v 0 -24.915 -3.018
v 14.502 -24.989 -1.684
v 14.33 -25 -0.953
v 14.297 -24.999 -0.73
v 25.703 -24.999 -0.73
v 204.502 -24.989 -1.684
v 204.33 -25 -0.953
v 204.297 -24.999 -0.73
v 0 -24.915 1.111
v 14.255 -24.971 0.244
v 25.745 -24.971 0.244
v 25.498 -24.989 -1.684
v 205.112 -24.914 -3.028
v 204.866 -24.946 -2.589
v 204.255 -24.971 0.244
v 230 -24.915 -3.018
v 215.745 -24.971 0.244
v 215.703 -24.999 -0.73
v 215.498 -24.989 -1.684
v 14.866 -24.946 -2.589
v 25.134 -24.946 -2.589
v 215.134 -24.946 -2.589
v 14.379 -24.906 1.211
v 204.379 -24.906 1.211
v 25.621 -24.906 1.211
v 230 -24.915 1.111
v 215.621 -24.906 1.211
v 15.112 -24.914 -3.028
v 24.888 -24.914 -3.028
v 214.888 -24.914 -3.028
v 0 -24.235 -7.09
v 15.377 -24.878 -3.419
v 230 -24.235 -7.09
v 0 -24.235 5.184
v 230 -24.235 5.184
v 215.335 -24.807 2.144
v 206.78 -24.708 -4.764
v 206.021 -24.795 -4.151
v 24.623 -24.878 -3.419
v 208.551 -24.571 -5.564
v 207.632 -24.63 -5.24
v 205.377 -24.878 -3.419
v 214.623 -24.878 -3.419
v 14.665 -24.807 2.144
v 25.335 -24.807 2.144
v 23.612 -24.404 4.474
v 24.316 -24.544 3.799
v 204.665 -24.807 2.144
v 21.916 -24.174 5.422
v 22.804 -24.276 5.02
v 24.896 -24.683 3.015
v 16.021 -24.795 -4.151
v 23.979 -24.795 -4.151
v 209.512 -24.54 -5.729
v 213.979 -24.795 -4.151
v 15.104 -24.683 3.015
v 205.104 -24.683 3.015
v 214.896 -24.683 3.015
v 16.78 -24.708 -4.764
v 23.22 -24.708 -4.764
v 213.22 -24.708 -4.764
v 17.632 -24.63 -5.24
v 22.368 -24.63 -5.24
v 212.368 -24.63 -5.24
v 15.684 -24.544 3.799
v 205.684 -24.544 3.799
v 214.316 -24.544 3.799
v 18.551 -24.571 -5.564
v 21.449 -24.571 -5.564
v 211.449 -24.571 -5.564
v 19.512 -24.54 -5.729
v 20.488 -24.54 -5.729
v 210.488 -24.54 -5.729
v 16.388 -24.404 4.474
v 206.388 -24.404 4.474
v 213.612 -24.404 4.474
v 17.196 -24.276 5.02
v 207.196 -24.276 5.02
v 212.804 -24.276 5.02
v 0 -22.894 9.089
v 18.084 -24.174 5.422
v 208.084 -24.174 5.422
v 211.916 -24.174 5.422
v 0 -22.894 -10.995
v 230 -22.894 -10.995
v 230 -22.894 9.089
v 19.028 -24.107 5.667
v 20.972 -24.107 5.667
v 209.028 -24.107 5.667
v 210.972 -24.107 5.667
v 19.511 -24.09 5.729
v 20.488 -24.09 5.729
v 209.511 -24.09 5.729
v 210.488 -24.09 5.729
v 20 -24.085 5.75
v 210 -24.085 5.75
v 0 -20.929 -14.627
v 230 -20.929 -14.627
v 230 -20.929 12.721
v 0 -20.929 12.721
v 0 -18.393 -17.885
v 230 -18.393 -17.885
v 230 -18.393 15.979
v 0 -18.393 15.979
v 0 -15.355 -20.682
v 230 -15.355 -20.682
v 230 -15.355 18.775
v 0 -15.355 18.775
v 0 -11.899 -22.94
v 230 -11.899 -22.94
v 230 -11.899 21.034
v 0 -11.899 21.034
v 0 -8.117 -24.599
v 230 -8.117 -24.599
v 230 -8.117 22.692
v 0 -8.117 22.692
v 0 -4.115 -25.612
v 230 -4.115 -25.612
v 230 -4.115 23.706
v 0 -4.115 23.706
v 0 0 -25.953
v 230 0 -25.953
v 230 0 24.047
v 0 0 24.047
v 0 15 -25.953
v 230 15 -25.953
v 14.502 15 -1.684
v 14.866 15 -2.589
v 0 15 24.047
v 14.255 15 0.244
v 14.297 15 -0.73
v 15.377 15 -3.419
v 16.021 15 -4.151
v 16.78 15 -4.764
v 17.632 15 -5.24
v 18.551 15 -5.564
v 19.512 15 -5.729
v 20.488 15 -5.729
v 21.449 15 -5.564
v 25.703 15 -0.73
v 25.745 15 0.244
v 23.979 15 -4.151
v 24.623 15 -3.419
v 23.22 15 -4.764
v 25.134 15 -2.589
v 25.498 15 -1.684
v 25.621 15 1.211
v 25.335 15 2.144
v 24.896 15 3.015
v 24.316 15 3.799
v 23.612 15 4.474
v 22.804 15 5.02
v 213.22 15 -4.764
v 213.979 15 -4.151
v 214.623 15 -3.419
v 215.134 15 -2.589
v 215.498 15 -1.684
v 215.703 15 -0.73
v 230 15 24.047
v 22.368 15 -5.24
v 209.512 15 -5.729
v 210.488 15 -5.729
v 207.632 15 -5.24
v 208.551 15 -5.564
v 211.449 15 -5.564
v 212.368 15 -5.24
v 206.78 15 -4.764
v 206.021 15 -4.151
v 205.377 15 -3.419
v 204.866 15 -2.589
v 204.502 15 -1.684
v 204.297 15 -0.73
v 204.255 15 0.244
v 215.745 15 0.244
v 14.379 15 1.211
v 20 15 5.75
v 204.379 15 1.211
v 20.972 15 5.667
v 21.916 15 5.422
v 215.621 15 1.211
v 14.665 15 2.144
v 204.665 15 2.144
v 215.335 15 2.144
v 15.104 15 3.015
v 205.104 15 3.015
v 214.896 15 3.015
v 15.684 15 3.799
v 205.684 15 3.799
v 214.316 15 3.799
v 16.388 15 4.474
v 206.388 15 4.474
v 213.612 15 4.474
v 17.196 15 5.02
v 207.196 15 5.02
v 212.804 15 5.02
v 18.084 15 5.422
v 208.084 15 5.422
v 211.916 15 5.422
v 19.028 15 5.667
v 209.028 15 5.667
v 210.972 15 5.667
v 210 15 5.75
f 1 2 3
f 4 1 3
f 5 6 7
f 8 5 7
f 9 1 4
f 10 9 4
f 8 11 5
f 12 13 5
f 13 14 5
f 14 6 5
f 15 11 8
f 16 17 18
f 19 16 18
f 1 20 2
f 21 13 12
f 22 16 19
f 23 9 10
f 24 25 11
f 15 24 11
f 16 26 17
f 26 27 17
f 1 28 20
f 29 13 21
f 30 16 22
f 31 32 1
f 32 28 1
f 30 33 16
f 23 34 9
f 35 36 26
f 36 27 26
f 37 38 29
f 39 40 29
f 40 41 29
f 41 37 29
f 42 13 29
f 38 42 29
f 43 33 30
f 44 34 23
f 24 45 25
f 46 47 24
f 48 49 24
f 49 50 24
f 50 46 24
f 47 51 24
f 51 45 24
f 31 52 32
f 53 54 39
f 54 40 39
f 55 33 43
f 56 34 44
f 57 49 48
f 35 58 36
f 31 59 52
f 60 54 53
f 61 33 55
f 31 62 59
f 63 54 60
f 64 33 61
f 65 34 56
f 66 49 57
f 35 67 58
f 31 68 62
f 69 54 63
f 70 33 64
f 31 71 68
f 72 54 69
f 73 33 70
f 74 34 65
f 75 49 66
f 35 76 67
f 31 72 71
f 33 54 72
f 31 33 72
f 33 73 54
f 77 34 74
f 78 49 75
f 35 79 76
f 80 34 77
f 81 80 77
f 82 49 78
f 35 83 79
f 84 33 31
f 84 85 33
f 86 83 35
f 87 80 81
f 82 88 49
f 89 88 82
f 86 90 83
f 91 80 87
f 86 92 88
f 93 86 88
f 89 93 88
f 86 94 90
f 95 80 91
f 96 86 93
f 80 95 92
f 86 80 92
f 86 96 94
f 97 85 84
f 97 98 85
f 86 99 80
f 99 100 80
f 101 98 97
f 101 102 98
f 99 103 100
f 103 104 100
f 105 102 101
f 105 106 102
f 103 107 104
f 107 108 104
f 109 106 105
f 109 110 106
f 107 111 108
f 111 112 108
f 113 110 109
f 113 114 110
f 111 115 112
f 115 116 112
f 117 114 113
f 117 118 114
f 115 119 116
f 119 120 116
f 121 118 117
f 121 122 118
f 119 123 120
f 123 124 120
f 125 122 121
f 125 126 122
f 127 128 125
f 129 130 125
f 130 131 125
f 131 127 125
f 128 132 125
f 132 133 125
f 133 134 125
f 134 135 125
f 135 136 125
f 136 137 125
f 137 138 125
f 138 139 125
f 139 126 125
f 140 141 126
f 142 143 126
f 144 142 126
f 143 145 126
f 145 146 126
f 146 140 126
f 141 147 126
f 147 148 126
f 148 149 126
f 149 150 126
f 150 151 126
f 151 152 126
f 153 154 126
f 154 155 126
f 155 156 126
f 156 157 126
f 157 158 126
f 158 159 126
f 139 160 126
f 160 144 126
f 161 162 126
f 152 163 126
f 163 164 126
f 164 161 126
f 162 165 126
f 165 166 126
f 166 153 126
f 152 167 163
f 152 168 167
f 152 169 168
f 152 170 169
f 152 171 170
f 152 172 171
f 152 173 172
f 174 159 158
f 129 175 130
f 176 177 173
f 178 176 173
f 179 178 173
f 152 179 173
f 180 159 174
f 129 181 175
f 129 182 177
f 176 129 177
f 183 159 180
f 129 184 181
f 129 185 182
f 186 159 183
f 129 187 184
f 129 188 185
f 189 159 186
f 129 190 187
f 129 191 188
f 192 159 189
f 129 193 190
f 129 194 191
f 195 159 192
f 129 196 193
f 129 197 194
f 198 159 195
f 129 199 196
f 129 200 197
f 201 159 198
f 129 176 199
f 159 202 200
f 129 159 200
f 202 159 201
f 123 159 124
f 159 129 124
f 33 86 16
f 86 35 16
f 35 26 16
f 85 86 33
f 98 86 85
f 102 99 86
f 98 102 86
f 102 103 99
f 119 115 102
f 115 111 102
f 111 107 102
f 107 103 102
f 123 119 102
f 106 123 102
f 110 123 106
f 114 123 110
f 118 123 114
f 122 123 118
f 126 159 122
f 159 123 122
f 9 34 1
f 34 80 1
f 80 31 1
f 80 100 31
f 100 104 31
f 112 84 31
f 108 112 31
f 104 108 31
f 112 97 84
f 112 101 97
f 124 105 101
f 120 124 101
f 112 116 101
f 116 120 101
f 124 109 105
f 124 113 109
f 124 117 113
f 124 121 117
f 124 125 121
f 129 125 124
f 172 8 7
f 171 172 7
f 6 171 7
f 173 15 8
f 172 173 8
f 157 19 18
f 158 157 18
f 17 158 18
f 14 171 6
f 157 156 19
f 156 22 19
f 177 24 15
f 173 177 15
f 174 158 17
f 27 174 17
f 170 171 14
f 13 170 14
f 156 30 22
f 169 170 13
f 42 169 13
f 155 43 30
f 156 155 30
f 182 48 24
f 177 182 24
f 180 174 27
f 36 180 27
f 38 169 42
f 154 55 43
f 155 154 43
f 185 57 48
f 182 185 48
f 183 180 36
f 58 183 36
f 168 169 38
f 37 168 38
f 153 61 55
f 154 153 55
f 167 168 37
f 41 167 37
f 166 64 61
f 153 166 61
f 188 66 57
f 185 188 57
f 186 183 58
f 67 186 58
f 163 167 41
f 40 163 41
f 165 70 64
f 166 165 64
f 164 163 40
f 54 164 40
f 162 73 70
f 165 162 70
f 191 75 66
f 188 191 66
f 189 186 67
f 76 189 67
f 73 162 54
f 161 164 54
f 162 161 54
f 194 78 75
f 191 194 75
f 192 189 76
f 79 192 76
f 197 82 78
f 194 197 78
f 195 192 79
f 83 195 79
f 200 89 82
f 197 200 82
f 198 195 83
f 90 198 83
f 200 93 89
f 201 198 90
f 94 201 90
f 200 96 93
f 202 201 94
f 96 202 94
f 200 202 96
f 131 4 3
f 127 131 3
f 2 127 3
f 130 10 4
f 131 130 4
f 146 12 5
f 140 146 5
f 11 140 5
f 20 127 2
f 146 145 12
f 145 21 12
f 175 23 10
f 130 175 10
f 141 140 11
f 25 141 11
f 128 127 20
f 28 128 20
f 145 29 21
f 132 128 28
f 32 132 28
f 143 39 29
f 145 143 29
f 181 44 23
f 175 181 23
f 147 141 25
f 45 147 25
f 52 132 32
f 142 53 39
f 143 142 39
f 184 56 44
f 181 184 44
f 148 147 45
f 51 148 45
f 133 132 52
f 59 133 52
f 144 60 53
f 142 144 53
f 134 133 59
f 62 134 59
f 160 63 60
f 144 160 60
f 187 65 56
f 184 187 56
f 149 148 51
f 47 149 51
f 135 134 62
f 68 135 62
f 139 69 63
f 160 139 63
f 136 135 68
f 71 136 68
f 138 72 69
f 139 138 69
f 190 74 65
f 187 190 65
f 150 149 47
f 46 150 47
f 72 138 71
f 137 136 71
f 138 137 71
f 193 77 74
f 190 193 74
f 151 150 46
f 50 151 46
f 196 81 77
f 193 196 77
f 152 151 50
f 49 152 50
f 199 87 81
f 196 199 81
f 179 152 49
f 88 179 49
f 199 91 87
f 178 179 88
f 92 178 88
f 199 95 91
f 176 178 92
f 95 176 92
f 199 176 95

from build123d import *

# Parameters (mm, degrees)
BOSS_EXTRUDE1_DEPTH          = 230
F_11_5_11_5_DIAMETER_HOLE2_D = 11.5


with BuildPart() as part:
    # Sketch1 → Boss-Extrude1 (new body)
    with BuildSketch(Plane(origin=(0, 0, 0), x_dir=(0, 0, -1), z_dir=(1, 0, 0))):
        with BuildLine():
            Line((-24.046920821, 0), (-24.046920821, 15))
            Line((-24.046920821, 15), (25.953079179, 15))
            Line((25.953079179, 15), (25.953079179, 0))
            ThreePointArc((25.953079179, 0), (0.953079179, -25), (-24.046920821, 0))
        make_face()
    extrude(amount=BOSS_EXTRUDE1_DEPTH)

    # Ø11.5 (11.5) Diameter Hole2 (through all)
    with Locations(Plane(origin=(0, 15, 0), x_dir=(1, 0, 0), z_dir=(0, 1, 0))):
        with Locations((20, 0), (210, 0)):
            Hole(F_11_5_11_5_DIAMETER_HOLE2_D / 2)


solid = part.part
